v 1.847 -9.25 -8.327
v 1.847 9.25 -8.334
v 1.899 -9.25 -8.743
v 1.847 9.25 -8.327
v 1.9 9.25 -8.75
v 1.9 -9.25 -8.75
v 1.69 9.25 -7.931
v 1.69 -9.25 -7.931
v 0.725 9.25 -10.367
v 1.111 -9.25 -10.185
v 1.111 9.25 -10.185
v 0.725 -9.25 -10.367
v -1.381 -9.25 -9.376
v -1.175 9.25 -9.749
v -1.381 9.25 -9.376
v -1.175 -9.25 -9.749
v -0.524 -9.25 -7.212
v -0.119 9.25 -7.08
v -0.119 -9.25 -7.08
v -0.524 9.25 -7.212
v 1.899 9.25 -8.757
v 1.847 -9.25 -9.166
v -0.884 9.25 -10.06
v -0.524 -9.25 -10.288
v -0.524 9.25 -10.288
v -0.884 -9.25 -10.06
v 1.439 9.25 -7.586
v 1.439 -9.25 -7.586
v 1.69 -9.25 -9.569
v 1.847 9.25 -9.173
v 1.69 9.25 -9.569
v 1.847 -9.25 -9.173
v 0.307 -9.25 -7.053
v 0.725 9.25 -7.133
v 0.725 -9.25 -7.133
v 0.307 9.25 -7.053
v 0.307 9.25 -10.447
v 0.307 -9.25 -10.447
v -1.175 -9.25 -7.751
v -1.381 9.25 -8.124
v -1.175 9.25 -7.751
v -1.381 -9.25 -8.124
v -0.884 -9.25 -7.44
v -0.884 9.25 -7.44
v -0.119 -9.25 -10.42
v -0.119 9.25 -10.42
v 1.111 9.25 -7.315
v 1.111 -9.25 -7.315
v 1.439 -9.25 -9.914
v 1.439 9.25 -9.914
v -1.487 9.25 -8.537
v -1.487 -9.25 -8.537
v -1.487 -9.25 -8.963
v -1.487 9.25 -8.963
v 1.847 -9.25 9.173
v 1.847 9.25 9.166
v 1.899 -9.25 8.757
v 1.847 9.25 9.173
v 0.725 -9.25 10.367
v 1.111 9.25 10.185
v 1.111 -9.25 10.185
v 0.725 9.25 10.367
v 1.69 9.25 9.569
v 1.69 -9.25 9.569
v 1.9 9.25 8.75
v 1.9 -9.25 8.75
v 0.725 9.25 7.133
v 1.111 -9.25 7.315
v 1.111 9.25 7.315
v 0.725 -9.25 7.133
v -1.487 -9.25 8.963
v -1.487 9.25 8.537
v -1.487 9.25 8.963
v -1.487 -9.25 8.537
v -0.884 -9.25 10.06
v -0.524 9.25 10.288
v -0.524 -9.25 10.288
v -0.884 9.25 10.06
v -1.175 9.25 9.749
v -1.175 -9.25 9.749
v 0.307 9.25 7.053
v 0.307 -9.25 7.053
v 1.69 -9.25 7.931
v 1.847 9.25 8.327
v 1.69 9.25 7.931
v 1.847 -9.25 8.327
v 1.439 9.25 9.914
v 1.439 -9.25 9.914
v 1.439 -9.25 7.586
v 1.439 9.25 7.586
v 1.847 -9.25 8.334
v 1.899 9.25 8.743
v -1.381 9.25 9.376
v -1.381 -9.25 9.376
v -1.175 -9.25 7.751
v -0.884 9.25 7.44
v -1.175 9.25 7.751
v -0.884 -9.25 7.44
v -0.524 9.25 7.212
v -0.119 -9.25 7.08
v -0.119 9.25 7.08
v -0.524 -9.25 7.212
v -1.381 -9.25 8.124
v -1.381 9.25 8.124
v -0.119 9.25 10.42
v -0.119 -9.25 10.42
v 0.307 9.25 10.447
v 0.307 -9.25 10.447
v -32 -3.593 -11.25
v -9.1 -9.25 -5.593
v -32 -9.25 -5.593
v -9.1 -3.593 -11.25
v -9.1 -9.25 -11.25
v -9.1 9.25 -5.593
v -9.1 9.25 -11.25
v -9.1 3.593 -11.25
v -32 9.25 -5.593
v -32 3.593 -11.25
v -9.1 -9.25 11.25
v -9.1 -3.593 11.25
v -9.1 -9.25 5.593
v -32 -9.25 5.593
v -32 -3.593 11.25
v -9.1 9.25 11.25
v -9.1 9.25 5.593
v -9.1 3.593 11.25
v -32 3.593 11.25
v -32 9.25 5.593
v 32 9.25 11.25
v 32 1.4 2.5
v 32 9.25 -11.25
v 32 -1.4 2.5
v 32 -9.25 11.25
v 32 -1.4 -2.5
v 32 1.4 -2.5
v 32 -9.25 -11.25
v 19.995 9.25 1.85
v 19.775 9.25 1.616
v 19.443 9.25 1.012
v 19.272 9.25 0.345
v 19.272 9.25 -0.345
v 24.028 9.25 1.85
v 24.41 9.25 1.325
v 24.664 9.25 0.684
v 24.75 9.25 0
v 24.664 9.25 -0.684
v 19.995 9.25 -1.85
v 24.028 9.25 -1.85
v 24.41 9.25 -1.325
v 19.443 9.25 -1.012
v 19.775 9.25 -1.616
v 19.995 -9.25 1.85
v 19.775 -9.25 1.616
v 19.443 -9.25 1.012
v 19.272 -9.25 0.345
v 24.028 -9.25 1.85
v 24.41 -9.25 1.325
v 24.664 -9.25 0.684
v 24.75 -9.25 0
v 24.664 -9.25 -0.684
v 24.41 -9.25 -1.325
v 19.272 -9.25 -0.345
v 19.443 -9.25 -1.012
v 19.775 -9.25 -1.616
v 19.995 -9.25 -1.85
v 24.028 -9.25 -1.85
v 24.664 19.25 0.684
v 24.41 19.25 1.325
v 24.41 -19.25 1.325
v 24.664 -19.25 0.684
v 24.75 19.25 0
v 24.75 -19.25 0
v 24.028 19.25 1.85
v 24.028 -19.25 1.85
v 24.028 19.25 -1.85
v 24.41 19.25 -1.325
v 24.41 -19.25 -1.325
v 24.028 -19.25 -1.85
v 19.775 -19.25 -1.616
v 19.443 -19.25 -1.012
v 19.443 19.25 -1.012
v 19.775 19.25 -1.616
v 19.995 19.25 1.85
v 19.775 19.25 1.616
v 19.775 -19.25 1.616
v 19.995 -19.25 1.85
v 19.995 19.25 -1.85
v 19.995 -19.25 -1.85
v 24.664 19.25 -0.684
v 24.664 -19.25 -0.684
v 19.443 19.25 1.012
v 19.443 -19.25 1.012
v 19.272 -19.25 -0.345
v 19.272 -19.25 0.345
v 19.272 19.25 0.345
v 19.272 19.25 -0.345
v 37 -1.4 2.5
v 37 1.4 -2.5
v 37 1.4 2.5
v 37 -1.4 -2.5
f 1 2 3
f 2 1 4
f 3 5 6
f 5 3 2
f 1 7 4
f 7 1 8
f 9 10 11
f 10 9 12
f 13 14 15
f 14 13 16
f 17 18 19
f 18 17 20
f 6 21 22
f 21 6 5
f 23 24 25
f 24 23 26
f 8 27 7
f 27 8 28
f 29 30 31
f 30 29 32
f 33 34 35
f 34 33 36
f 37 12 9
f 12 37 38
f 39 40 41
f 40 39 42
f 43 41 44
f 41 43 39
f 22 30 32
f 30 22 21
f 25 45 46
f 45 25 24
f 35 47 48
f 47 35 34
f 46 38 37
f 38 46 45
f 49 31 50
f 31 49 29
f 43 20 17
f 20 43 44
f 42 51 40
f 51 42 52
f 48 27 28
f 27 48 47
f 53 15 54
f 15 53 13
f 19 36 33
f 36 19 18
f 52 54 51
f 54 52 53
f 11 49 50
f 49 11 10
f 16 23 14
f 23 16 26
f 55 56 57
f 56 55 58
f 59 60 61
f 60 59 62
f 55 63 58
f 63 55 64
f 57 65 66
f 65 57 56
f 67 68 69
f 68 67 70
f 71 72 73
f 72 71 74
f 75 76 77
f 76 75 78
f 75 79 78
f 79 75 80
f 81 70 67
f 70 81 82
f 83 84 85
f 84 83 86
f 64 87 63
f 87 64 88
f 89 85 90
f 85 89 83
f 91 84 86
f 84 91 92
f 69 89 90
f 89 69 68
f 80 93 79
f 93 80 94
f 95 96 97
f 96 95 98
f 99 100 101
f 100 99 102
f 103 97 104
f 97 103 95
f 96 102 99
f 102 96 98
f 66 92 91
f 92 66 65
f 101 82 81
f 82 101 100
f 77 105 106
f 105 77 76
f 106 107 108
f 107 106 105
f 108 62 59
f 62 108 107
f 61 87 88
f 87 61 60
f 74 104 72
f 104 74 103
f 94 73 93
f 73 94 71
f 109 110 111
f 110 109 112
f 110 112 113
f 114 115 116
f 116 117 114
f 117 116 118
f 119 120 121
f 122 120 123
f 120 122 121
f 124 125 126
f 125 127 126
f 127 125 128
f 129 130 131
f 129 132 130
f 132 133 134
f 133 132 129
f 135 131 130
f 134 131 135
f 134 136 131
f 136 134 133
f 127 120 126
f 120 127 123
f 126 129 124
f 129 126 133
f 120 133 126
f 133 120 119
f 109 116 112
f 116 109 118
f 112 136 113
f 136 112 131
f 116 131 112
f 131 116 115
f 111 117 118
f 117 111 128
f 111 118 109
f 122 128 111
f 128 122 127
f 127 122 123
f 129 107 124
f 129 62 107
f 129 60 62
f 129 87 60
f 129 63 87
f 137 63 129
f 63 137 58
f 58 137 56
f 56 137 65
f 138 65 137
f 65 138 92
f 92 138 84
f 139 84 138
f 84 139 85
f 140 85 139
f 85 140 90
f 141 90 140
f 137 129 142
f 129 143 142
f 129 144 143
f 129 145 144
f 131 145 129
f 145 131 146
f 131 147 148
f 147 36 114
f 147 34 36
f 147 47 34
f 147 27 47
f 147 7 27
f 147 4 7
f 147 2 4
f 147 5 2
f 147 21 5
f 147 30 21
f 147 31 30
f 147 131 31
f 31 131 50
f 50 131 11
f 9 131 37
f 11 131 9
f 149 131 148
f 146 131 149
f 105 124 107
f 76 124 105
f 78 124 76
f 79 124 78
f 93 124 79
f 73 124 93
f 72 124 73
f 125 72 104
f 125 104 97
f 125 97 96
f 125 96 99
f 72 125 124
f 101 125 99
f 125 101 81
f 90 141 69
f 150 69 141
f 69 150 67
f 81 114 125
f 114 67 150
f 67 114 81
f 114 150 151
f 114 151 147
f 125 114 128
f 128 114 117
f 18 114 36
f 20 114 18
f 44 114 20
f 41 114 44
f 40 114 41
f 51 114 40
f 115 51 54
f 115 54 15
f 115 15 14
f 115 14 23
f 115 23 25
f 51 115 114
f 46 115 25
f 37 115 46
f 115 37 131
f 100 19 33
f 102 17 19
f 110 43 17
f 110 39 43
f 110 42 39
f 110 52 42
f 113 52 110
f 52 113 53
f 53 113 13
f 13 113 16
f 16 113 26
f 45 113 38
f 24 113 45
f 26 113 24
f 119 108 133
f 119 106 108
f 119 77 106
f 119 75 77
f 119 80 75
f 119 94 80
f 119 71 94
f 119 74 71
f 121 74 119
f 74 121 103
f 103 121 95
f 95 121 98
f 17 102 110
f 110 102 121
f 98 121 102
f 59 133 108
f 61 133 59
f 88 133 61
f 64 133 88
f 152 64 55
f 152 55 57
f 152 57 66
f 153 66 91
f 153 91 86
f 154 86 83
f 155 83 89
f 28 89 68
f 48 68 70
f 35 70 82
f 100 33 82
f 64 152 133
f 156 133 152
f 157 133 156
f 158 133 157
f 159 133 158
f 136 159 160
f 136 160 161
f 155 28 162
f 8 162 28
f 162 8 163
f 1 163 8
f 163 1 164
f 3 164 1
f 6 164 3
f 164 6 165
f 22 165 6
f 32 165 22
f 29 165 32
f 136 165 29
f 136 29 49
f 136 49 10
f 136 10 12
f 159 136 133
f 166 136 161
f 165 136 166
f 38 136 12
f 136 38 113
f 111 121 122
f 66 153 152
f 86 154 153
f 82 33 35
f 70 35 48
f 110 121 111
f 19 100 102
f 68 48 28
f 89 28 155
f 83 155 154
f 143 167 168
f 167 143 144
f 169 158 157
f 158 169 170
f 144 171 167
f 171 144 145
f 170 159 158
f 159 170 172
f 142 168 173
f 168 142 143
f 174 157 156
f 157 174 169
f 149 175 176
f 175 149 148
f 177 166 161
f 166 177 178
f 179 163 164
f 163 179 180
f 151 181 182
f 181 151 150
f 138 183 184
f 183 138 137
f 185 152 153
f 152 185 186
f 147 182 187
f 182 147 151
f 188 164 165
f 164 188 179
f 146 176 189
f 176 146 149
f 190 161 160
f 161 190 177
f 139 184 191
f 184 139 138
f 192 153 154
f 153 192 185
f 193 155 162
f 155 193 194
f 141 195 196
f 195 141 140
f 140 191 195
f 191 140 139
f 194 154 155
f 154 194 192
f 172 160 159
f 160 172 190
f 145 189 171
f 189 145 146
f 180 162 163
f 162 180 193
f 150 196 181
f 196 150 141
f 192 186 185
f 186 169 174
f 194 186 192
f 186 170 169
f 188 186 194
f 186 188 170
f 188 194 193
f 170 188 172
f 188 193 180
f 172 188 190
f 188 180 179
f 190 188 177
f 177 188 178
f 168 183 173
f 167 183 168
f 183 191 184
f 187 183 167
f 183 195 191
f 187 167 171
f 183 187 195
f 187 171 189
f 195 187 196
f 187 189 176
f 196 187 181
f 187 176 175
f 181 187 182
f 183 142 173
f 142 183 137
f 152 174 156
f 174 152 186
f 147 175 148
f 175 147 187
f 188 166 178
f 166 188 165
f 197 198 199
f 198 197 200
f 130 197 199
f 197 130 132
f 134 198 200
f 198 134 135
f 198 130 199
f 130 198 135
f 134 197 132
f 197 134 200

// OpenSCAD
$fn=25;

module gearbox_motor(){
    difference(){
        cube([64, 18.5, 22.5], center=true);
        
        for (i=[-1, 1])
            translate([64/2-31.8, 0, 17.5*i/2])
                rotate([90, 0, 0])
                cylinder(d=3.4, h=19.1, center=true);
        
        for (z=[-1, 1])
            for (y=[-1, 1])
                translate([-20.6, y*18.5/2, z*22.5/2])
                    rotate([45, 0, 0])
                    cube([23, 8, 8], center=true);
     }
    
    translate([64/2+2.5, 0, 0])
        cube([5, 2.8, 5], center=true);
    
    translate([66/2-11, 0, 0])
        rotate([90, 0, 0])
        difference(){        
            cylinder(d=5.5, h=38.5, center=true);
            translate([0, 3.7/2+5.5/2])
                cube([5.5, 5.5, 38.6], center=true);
            translate([0, -3.7/2-5.5/2])
                cube([5.5, 5.5, 38.6], center=true);
        }
}

gearbox_motor();
